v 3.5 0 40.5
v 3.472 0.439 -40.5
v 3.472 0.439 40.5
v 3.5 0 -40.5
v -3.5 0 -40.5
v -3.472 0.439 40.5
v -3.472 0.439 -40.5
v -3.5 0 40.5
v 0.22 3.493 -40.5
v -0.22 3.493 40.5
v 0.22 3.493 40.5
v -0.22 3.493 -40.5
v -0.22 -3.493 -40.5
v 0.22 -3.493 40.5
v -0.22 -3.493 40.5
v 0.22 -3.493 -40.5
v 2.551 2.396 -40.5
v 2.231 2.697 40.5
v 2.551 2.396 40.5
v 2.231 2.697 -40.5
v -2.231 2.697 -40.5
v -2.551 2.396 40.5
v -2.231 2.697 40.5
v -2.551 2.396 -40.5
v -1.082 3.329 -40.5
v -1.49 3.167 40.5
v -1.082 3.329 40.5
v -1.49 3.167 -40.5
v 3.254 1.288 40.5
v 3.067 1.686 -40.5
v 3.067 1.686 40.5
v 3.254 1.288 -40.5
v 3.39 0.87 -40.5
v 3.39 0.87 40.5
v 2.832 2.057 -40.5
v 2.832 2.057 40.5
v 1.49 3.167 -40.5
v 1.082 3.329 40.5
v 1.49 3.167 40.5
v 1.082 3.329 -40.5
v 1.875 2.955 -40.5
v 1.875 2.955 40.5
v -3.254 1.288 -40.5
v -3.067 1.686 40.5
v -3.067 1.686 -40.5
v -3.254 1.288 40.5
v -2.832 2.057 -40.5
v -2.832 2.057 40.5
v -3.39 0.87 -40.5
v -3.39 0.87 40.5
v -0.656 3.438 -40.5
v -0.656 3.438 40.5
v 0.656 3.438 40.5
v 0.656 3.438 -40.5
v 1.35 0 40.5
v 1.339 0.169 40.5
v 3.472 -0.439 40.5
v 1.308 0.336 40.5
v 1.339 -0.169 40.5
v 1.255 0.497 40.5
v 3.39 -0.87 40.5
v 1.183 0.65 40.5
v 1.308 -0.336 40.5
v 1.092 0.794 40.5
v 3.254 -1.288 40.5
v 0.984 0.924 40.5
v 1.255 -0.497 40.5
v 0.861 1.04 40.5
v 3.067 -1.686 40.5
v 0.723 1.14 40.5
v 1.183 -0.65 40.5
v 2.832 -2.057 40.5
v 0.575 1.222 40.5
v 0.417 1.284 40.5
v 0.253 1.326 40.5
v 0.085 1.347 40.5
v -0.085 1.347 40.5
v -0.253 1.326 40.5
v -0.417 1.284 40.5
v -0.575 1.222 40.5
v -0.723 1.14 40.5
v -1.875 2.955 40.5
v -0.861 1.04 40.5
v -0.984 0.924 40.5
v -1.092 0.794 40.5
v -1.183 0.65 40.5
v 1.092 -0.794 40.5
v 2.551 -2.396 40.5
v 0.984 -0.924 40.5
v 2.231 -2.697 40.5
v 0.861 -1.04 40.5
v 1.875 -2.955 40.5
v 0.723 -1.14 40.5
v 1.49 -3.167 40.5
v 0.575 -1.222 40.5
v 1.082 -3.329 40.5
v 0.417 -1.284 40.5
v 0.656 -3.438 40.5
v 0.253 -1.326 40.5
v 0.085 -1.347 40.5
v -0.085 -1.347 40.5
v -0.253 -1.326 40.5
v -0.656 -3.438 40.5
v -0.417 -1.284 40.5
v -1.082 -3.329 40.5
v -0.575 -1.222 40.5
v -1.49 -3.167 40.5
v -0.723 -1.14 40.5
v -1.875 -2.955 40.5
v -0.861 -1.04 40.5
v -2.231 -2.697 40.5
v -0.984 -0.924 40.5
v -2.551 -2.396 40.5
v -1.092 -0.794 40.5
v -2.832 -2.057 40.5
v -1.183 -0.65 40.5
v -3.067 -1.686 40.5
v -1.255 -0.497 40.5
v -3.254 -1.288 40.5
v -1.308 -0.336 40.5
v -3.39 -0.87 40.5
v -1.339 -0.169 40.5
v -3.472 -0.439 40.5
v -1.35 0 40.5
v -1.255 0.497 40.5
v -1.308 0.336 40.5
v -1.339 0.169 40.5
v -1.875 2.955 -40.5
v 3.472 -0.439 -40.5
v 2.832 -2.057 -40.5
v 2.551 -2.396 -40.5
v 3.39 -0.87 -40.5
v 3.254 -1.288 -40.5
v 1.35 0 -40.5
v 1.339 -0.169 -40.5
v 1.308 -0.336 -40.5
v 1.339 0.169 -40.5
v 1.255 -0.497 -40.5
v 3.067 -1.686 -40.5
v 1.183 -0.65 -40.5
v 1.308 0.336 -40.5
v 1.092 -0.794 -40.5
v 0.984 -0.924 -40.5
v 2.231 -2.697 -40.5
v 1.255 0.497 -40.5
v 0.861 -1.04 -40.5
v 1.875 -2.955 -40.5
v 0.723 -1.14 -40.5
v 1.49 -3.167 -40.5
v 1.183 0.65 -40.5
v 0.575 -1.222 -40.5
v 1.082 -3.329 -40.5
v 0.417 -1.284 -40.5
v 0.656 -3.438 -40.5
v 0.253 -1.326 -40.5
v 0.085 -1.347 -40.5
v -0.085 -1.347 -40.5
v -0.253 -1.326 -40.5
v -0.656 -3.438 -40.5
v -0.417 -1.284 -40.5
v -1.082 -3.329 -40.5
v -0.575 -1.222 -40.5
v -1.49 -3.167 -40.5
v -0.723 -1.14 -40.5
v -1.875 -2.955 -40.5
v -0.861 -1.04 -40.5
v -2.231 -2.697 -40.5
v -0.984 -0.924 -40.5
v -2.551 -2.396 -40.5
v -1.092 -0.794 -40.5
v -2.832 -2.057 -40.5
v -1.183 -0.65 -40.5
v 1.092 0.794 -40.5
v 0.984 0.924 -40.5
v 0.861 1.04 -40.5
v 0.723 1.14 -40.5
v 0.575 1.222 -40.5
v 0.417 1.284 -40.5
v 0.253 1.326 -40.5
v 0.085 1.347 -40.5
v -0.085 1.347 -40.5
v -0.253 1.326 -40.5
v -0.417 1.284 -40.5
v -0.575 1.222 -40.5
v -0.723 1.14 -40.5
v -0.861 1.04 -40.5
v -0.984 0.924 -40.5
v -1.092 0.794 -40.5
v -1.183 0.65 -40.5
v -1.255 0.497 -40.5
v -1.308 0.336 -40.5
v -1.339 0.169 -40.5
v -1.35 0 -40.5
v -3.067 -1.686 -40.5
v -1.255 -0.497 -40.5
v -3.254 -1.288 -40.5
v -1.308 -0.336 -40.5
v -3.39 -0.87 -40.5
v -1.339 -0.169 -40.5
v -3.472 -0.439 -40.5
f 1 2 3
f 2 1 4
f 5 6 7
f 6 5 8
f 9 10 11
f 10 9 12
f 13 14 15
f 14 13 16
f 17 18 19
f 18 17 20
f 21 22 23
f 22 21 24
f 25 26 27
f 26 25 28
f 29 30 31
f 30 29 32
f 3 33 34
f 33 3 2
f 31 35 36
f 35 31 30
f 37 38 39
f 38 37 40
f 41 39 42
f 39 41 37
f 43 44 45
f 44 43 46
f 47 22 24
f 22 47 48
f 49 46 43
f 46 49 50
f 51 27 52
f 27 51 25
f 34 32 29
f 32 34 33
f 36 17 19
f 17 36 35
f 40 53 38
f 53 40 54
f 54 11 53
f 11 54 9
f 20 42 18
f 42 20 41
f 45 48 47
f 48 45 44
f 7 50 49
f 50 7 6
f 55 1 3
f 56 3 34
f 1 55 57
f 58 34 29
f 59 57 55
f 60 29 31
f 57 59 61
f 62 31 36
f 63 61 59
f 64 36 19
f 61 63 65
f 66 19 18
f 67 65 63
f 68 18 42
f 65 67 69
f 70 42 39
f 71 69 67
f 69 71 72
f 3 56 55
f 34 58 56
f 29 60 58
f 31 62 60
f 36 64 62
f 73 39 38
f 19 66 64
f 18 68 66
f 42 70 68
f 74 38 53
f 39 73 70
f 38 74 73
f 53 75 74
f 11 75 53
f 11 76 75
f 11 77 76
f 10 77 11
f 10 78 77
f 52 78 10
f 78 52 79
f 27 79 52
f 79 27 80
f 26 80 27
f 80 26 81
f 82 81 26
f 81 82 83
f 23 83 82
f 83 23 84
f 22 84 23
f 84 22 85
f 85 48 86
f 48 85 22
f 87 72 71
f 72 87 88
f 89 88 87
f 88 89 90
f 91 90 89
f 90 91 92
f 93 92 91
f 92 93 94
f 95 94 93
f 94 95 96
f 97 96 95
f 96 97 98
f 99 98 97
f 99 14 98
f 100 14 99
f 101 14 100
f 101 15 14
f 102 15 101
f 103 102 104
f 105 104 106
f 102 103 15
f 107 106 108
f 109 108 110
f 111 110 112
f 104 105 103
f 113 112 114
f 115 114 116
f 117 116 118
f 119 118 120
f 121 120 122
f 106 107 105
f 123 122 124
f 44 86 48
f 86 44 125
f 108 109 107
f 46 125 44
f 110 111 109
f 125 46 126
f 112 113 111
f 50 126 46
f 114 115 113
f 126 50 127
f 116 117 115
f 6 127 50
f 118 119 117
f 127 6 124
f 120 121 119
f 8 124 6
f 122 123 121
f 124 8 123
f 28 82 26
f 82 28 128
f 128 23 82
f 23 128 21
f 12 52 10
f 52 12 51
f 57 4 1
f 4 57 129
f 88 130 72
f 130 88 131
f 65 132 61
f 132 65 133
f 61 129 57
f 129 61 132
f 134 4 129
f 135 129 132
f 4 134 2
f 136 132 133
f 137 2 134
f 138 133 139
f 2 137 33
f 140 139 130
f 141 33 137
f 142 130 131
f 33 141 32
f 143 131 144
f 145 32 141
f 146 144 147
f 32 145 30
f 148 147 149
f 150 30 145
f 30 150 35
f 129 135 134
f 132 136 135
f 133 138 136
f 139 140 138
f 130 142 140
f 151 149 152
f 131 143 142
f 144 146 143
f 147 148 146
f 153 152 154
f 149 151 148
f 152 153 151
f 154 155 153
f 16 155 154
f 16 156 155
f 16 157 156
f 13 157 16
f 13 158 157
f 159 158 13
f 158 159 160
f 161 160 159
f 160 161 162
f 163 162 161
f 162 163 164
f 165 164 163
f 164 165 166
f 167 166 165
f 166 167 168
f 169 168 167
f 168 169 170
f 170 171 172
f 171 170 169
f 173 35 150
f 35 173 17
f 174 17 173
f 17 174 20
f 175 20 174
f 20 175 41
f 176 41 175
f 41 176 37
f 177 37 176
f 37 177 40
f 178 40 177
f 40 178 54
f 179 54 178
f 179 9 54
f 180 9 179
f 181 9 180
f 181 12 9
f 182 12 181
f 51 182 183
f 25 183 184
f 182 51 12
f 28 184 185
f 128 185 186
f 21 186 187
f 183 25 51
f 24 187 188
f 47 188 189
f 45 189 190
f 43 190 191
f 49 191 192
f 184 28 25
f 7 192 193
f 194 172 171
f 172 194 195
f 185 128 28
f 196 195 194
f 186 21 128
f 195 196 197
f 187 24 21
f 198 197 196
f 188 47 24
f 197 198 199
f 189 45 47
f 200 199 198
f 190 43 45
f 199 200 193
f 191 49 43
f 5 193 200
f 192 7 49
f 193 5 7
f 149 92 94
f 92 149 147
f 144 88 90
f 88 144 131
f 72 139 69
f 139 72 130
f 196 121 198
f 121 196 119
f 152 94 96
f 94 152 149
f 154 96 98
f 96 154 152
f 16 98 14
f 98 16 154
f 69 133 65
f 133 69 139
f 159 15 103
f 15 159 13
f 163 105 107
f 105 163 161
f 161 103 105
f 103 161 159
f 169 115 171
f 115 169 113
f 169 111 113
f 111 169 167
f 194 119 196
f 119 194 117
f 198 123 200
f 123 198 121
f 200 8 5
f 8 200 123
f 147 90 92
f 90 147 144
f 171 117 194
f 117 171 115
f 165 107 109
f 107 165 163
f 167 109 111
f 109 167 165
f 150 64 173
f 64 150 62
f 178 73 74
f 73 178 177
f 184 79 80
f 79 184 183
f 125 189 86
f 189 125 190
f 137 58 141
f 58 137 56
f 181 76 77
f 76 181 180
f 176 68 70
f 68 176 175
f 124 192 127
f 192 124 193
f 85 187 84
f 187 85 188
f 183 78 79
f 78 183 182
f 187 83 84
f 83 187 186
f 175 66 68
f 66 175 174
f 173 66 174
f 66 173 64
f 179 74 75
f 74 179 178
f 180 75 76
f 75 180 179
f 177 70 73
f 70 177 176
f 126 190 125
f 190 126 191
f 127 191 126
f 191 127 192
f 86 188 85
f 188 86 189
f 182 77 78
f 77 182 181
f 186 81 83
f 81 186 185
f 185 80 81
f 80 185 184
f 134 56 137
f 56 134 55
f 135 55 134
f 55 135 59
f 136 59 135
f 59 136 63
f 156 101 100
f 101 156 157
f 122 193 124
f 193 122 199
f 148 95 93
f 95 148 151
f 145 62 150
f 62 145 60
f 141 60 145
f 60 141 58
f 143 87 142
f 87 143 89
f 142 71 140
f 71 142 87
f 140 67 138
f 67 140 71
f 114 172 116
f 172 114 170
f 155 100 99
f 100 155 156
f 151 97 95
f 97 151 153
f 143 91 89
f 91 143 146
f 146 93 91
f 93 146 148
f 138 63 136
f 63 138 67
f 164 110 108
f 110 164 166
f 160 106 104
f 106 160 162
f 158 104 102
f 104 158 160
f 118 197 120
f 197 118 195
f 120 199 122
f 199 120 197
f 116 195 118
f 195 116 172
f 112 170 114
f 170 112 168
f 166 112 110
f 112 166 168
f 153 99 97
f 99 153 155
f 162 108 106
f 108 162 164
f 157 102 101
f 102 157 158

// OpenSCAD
$fn = 50;


difference() {
	union() {
		translate(v = [0, 0, -40.5000000000]) {
			cylinder(h = 81, r = 3.5000000000);
		}
	}
	union() {
		translate(v = [0, 0, -100.0000000000]) {
			cylinder(h = 200, r = 1.3500000000);
		}
	}
}
